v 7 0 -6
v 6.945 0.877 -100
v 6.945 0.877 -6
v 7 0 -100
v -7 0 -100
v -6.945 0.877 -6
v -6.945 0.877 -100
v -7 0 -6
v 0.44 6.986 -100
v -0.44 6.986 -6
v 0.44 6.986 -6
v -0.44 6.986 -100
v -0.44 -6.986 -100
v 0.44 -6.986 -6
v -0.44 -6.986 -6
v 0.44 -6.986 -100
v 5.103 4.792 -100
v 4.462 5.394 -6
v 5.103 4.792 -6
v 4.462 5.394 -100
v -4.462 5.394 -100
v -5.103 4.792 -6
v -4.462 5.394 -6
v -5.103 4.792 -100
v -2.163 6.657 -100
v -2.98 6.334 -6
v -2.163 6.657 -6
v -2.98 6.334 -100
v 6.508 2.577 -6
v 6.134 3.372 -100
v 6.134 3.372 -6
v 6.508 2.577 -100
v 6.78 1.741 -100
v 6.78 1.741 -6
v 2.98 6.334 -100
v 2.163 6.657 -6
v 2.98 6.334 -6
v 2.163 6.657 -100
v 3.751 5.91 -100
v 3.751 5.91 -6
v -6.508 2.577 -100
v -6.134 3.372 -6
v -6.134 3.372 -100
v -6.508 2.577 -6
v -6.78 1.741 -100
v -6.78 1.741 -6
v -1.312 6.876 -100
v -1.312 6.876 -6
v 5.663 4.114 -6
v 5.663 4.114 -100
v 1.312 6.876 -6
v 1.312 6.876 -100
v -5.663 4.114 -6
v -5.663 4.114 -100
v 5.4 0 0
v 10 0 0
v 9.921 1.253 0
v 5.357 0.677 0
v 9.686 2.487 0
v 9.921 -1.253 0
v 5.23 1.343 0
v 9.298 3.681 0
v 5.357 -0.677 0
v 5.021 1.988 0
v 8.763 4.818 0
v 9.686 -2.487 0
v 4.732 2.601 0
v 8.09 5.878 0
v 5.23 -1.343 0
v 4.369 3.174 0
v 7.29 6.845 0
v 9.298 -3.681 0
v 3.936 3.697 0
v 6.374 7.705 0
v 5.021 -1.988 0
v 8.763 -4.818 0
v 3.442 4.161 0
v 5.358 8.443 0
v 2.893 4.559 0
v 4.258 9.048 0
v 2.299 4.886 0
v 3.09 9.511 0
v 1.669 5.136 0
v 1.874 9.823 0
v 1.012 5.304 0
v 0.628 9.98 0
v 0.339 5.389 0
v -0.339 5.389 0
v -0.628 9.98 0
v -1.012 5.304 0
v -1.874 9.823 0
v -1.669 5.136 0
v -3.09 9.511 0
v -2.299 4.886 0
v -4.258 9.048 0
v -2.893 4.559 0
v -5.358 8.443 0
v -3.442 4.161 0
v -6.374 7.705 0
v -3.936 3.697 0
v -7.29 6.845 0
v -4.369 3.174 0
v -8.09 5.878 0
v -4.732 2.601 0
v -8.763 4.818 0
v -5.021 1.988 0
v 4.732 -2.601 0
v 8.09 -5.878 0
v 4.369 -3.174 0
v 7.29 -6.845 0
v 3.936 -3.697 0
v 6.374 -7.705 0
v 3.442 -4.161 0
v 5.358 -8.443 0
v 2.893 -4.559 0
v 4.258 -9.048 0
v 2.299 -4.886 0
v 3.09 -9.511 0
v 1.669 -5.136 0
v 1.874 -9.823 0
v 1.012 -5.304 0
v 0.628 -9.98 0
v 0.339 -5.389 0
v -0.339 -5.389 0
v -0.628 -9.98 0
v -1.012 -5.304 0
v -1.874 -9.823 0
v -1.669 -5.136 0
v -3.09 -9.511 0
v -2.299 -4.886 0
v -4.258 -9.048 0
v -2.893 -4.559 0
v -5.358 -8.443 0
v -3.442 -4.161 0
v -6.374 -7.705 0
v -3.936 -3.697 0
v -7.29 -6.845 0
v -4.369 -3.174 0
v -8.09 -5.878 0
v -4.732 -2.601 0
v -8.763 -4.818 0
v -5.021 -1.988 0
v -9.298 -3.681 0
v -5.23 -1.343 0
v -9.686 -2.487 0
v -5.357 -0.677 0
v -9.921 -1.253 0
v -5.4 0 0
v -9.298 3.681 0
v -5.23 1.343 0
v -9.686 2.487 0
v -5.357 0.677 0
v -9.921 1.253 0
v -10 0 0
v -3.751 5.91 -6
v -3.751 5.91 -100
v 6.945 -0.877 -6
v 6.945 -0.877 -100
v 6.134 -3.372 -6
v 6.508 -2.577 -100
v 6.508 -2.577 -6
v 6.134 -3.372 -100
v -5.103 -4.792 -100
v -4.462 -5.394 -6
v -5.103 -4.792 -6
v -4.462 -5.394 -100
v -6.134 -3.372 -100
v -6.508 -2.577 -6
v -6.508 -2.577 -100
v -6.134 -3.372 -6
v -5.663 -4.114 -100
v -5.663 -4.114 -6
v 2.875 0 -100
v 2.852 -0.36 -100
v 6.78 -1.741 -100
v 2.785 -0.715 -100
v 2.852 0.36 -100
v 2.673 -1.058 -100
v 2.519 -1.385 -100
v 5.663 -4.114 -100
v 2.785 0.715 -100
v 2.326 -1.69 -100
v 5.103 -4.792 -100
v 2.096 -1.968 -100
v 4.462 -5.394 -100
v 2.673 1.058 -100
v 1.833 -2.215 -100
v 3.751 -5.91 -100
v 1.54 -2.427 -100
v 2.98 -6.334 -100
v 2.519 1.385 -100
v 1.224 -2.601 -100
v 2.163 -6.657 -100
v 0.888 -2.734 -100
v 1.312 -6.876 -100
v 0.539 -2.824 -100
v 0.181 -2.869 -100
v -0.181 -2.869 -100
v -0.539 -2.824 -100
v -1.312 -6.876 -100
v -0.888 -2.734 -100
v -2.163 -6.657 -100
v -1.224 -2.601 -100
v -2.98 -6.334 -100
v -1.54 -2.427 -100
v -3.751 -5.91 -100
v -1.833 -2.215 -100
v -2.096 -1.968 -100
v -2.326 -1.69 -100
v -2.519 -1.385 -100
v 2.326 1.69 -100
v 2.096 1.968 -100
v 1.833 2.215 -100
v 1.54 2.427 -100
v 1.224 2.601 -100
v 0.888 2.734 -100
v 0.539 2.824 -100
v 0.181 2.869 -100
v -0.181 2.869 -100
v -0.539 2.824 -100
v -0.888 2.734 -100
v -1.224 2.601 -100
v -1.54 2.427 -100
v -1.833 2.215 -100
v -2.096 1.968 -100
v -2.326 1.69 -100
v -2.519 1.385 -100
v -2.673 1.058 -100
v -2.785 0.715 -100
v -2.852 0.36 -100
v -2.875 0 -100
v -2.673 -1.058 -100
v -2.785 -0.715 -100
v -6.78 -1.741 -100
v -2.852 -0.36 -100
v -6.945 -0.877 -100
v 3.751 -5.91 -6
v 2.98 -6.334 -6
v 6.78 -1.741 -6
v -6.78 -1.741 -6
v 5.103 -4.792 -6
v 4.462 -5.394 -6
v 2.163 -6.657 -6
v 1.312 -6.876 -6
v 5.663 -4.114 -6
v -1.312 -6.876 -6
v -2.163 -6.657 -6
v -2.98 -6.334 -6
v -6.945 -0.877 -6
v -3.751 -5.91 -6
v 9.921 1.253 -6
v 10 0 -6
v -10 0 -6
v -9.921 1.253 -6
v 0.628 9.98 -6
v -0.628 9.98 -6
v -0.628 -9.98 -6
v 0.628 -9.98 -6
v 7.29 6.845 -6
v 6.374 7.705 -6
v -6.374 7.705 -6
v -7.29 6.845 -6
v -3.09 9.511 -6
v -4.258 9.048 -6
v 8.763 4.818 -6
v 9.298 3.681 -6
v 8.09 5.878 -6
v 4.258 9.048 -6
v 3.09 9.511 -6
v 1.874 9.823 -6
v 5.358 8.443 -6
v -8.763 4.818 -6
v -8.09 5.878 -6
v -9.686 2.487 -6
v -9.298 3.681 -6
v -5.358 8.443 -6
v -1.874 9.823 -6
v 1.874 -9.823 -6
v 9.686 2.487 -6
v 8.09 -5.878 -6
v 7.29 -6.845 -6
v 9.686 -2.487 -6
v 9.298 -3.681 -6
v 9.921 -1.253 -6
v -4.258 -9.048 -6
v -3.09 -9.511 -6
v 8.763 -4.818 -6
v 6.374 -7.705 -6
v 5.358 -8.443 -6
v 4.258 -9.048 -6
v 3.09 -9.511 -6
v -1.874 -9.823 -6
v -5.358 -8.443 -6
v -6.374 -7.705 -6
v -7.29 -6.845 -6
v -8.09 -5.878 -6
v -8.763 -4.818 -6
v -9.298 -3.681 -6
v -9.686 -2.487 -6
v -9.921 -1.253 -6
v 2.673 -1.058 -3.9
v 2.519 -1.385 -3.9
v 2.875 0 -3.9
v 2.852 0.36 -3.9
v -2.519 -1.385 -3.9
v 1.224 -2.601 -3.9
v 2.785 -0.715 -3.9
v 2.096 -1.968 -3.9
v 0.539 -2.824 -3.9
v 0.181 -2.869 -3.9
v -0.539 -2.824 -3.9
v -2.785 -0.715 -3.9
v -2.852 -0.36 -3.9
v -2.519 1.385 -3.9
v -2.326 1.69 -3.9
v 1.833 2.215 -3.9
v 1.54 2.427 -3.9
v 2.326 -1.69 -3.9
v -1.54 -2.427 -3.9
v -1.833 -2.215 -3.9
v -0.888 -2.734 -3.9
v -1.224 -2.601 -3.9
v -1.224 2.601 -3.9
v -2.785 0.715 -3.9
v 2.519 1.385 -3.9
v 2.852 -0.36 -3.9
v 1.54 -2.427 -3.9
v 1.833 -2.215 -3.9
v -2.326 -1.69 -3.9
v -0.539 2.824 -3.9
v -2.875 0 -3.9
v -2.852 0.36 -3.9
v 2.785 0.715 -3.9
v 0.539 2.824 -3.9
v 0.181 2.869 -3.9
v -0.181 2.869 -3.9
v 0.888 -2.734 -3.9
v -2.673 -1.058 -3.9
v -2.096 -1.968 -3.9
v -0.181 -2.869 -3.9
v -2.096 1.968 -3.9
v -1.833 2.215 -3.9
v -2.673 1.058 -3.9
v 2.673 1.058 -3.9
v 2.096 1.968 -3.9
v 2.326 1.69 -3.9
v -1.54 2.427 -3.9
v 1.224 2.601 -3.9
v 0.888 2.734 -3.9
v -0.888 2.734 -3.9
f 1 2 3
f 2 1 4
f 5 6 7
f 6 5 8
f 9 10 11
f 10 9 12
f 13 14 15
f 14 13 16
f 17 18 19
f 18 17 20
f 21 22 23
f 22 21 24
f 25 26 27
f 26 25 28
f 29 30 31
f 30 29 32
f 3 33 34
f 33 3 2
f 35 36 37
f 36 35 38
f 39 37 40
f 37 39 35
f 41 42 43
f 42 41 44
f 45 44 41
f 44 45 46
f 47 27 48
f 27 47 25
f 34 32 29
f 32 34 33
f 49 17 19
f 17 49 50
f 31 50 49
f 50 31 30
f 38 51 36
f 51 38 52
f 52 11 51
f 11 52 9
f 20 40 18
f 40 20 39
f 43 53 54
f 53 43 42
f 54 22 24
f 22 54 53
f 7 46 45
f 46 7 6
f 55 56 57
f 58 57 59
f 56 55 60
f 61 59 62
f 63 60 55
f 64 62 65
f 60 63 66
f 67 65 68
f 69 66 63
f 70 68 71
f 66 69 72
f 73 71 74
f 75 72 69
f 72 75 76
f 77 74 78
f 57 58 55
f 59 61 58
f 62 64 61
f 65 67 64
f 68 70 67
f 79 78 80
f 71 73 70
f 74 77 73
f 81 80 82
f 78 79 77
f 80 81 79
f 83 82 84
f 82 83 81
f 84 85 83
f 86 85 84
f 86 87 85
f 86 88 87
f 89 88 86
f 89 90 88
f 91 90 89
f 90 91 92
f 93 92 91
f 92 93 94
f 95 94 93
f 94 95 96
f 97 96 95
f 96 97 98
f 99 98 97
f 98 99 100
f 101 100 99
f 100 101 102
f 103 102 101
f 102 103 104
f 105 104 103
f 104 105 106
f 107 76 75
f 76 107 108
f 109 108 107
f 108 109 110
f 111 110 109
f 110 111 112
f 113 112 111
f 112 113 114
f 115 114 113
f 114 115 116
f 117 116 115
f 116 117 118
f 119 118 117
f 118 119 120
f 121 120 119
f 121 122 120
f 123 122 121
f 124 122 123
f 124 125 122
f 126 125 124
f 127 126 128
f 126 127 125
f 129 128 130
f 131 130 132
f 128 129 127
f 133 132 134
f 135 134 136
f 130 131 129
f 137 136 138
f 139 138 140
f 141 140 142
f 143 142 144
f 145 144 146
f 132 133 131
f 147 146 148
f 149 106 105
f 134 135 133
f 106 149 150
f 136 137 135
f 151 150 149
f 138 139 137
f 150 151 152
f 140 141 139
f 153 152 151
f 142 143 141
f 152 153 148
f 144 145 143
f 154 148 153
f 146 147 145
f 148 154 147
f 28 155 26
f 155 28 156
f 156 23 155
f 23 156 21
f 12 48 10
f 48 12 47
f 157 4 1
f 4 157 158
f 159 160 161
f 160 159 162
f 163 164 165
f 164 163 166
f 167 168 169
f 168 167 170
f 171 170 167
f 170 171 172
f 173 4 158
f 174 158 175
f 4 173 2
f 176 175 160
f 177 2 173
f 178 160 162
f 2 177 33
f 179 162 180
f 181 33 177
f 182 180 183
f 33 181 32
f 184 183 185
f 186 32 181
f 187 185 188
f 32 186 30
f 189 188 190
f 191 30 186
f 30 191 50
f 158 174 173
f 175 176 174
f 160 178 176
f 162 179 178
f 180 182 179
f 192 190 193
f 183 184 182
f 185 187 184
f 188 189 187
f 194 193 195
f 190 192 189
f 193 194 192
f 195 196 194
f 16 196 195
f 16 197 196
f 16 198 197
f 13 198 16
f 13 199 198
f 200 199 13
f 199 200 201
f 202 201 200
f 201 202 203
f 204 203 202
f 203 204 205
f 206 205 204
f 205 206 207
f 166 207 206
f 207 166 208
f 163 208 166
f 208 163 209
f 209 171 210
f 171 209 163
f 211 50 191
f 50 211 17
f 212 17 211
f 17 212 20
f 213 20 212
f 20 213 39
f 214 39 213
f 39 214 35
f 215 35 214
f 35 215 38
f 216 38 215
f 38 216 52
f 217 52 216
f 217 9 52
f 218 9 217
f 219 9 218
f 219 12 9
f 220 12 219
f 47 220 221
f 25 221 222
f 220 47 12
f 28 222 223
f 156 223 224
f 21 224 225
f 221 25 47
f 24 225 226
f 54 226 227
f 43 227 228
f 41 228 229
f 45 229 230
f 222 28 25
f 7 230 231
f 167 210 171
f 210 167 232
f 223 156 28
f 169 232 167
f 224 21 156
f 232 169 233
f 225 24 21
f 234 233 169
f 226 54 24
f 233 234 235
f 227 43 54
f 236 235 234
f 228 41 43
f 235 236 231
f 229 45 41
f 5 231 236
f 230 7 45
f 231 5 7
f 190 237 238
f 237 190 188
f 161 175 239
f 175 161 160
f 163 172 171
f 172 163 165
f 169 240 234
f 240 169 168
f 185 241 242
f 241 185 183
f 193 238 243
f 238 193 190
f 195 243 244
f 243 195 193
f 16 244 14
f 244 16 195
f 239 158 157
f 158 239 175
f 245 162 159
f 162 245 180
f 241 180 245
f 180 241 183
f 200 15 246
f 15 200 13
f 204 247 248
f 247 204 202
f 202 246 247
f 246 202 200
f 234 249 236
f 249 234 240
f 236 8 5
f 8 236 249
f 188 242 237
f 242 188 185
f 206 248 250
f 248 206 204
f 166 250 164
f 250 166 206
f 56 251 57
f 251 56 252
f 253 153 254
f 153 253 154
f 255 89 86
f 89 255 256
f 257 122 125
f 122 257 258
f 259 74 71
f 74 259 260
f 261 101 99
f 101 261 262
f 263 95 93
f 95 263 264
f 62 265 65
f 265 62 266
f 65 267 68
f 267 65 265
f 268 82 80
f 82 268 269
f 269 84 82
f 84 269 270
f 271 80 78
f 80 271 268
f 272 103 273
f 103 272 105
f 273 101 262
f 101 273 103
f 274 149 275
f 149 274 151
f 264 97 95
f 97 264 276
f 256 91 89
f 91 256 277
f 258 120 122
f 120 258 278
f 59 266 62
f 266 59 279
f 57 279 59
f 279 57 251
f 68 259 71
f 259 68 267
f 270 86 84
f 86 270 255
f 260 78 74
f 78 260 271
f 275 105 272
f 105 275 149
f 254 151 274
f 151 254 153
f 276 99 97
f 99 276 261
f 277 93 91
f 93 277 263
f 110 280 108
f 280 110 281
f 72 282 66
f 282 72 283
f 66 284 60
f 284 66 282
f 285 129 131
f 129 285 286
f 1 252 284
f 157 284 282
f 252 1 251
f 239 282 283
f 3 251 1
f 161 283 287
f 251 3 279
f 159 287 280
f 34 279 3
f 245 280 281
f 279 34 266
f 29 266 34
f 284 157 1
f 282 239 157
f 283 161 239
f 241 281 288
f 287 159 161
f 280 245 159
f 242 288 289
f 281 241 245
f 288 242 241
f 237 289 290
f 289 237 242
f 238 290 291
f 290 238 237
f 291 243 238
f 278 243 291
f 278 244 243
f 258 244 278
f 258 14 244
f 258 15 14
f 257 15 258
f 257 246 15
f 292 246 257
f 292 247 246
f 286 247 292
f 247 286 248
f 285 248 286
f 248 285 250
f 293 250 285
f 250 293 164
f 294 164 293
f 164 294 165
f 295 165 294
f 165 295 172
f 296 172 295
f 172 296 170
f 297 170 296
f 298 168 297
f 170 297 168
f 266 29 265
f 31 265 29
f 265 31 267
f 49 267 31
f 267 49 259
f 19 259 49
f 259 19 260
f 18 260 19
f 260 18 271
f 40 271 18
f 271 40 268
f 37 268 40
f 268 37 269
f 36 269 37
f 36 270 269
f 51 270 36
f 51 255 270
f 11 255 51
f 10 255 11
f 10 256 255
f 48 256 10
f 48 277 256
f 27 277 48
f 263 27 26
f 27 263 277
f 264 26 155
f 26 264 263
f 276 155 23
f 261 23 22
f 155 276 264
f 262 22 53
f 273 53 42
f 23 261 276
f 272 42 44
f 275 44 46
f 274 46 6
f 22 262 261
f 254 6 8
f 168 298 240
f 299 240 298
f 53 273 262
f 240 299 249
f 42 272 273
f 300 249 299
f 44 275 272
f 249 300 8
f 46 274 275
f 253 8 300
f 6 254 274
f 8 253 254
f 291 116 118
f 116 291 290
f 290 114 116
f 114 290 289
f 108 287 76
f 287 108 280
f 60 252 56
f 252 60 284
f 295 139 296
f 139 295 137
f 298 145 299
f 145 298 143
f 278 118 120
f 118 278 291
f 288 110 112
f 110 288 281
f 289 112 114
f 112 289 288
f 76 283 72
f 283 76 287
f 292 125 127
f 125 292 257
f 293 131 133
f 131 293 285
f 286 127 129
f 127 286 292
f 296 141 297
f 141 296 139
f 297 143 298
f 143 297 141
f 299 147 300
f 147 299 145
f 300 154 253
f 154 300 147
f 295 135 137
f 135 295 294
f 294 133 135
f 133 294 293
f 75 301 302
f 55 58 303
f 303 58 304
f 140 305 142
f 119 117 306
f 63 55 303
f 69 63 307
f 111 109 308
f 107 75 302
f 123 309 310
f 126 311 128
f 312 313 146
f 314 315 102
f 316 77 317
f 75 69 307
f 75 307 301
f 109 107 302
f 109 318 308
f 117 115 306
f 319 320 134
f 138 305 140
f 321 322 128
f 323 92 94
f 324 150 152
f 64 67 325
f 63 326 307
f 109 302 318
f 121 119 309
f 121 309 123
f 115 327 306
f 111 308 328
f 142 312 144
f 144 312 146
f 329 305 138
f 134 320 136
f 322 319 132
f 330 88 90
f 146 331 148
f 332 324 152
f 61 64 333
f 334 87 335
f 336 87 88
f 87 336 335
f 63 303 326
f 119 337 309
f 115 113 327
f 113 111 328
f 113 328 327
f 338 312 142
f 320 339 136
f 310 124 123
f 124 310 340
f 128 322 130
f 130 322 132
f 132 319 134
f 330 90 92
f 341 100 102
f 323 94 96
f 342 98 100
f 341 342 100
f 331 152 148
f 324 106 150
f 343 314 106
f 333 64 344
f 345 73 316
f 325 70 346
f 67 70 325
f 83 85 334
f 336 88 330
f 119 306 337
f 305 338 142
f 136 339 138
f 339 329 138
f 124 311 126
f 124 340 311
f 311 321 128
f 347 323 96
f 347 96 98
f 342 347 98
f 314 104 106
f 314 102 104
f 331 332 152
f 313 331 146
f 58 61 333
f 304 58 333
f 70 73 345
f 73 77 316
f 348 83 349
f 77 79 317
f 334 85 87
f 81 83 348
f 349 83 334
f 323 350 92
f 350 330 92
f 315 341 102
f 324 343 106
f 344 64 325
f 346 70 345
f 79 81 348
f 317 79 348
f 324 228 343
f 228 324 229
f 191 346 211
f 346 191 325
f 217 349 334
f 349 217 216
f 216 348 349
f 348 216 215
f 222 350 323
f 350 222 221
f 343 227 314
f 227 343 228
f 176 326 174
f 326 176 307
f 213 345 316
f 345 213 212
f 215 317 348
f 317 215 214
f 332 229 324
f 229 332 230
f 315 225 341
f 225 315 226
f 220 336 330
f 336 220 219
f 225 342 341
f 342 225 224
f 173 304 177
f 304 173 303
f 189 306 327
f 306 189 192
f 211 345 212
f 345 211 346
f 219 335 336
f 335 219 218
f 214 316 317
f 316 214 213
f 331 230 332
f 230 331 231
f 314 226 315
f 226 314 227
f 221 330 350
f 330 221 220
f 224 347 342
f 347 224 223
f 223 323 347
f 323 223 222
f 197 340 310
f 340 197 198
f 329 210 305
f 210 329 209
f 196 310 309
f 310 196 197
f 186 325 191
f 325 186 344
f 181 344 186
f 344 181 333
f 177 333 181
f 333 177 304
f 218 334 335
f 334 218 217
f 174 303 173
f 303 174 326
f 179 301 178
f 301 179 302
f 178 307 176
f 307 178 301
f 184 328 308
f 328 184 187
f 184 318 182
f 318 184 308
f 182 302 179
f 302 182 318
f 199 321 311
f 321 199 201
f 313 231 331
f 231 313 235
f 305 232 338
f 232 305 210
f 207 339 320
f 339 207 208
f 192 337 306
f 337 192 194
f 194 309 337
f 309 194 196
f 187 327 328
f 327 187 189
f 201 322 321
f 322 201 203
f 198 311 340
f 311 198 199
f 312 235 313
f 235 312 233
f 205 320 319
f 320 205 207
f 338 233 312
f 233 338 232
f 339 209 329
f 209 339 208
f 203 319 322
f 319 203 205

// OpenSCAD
$fn = 50;


difference() {
	union() {
		translate(v = [0, 0, -100.0000000000]) {
			cylinder(h = 100, r = 7.0000000000);
		}
		translate(v = [0, 0, -6.0000000000]) {
			cylinder(h = 6, r = 10.0000000000);
		}
	}
	union() {
		translate(v = [0, 0, 0]) {
			rotate(a = [0, 0, 0]) {
				difference() {
					union() {
						#translate(v = [0, 0, -100.0000000000]) {
							cylinder(h = 100, r = 2.6000000000);
						}
						#translate(v = [0, 0, -3.9000000000]) {
							cylinder(h = 3.9000000000, r1 = 2.8750000000, r2 = 5.4000000000);
						}
						#translate(v = [0, 0, -100.0000000000]) {
							cylinder(h = 100, r = 2.8750000000);
						}
						#translate(v = [0, 0, -100.0000000000]) {
							cylinder(h = 100, r = 2.6000000000);
						}
					}
					union();
				}
			}
		}
	}
}
